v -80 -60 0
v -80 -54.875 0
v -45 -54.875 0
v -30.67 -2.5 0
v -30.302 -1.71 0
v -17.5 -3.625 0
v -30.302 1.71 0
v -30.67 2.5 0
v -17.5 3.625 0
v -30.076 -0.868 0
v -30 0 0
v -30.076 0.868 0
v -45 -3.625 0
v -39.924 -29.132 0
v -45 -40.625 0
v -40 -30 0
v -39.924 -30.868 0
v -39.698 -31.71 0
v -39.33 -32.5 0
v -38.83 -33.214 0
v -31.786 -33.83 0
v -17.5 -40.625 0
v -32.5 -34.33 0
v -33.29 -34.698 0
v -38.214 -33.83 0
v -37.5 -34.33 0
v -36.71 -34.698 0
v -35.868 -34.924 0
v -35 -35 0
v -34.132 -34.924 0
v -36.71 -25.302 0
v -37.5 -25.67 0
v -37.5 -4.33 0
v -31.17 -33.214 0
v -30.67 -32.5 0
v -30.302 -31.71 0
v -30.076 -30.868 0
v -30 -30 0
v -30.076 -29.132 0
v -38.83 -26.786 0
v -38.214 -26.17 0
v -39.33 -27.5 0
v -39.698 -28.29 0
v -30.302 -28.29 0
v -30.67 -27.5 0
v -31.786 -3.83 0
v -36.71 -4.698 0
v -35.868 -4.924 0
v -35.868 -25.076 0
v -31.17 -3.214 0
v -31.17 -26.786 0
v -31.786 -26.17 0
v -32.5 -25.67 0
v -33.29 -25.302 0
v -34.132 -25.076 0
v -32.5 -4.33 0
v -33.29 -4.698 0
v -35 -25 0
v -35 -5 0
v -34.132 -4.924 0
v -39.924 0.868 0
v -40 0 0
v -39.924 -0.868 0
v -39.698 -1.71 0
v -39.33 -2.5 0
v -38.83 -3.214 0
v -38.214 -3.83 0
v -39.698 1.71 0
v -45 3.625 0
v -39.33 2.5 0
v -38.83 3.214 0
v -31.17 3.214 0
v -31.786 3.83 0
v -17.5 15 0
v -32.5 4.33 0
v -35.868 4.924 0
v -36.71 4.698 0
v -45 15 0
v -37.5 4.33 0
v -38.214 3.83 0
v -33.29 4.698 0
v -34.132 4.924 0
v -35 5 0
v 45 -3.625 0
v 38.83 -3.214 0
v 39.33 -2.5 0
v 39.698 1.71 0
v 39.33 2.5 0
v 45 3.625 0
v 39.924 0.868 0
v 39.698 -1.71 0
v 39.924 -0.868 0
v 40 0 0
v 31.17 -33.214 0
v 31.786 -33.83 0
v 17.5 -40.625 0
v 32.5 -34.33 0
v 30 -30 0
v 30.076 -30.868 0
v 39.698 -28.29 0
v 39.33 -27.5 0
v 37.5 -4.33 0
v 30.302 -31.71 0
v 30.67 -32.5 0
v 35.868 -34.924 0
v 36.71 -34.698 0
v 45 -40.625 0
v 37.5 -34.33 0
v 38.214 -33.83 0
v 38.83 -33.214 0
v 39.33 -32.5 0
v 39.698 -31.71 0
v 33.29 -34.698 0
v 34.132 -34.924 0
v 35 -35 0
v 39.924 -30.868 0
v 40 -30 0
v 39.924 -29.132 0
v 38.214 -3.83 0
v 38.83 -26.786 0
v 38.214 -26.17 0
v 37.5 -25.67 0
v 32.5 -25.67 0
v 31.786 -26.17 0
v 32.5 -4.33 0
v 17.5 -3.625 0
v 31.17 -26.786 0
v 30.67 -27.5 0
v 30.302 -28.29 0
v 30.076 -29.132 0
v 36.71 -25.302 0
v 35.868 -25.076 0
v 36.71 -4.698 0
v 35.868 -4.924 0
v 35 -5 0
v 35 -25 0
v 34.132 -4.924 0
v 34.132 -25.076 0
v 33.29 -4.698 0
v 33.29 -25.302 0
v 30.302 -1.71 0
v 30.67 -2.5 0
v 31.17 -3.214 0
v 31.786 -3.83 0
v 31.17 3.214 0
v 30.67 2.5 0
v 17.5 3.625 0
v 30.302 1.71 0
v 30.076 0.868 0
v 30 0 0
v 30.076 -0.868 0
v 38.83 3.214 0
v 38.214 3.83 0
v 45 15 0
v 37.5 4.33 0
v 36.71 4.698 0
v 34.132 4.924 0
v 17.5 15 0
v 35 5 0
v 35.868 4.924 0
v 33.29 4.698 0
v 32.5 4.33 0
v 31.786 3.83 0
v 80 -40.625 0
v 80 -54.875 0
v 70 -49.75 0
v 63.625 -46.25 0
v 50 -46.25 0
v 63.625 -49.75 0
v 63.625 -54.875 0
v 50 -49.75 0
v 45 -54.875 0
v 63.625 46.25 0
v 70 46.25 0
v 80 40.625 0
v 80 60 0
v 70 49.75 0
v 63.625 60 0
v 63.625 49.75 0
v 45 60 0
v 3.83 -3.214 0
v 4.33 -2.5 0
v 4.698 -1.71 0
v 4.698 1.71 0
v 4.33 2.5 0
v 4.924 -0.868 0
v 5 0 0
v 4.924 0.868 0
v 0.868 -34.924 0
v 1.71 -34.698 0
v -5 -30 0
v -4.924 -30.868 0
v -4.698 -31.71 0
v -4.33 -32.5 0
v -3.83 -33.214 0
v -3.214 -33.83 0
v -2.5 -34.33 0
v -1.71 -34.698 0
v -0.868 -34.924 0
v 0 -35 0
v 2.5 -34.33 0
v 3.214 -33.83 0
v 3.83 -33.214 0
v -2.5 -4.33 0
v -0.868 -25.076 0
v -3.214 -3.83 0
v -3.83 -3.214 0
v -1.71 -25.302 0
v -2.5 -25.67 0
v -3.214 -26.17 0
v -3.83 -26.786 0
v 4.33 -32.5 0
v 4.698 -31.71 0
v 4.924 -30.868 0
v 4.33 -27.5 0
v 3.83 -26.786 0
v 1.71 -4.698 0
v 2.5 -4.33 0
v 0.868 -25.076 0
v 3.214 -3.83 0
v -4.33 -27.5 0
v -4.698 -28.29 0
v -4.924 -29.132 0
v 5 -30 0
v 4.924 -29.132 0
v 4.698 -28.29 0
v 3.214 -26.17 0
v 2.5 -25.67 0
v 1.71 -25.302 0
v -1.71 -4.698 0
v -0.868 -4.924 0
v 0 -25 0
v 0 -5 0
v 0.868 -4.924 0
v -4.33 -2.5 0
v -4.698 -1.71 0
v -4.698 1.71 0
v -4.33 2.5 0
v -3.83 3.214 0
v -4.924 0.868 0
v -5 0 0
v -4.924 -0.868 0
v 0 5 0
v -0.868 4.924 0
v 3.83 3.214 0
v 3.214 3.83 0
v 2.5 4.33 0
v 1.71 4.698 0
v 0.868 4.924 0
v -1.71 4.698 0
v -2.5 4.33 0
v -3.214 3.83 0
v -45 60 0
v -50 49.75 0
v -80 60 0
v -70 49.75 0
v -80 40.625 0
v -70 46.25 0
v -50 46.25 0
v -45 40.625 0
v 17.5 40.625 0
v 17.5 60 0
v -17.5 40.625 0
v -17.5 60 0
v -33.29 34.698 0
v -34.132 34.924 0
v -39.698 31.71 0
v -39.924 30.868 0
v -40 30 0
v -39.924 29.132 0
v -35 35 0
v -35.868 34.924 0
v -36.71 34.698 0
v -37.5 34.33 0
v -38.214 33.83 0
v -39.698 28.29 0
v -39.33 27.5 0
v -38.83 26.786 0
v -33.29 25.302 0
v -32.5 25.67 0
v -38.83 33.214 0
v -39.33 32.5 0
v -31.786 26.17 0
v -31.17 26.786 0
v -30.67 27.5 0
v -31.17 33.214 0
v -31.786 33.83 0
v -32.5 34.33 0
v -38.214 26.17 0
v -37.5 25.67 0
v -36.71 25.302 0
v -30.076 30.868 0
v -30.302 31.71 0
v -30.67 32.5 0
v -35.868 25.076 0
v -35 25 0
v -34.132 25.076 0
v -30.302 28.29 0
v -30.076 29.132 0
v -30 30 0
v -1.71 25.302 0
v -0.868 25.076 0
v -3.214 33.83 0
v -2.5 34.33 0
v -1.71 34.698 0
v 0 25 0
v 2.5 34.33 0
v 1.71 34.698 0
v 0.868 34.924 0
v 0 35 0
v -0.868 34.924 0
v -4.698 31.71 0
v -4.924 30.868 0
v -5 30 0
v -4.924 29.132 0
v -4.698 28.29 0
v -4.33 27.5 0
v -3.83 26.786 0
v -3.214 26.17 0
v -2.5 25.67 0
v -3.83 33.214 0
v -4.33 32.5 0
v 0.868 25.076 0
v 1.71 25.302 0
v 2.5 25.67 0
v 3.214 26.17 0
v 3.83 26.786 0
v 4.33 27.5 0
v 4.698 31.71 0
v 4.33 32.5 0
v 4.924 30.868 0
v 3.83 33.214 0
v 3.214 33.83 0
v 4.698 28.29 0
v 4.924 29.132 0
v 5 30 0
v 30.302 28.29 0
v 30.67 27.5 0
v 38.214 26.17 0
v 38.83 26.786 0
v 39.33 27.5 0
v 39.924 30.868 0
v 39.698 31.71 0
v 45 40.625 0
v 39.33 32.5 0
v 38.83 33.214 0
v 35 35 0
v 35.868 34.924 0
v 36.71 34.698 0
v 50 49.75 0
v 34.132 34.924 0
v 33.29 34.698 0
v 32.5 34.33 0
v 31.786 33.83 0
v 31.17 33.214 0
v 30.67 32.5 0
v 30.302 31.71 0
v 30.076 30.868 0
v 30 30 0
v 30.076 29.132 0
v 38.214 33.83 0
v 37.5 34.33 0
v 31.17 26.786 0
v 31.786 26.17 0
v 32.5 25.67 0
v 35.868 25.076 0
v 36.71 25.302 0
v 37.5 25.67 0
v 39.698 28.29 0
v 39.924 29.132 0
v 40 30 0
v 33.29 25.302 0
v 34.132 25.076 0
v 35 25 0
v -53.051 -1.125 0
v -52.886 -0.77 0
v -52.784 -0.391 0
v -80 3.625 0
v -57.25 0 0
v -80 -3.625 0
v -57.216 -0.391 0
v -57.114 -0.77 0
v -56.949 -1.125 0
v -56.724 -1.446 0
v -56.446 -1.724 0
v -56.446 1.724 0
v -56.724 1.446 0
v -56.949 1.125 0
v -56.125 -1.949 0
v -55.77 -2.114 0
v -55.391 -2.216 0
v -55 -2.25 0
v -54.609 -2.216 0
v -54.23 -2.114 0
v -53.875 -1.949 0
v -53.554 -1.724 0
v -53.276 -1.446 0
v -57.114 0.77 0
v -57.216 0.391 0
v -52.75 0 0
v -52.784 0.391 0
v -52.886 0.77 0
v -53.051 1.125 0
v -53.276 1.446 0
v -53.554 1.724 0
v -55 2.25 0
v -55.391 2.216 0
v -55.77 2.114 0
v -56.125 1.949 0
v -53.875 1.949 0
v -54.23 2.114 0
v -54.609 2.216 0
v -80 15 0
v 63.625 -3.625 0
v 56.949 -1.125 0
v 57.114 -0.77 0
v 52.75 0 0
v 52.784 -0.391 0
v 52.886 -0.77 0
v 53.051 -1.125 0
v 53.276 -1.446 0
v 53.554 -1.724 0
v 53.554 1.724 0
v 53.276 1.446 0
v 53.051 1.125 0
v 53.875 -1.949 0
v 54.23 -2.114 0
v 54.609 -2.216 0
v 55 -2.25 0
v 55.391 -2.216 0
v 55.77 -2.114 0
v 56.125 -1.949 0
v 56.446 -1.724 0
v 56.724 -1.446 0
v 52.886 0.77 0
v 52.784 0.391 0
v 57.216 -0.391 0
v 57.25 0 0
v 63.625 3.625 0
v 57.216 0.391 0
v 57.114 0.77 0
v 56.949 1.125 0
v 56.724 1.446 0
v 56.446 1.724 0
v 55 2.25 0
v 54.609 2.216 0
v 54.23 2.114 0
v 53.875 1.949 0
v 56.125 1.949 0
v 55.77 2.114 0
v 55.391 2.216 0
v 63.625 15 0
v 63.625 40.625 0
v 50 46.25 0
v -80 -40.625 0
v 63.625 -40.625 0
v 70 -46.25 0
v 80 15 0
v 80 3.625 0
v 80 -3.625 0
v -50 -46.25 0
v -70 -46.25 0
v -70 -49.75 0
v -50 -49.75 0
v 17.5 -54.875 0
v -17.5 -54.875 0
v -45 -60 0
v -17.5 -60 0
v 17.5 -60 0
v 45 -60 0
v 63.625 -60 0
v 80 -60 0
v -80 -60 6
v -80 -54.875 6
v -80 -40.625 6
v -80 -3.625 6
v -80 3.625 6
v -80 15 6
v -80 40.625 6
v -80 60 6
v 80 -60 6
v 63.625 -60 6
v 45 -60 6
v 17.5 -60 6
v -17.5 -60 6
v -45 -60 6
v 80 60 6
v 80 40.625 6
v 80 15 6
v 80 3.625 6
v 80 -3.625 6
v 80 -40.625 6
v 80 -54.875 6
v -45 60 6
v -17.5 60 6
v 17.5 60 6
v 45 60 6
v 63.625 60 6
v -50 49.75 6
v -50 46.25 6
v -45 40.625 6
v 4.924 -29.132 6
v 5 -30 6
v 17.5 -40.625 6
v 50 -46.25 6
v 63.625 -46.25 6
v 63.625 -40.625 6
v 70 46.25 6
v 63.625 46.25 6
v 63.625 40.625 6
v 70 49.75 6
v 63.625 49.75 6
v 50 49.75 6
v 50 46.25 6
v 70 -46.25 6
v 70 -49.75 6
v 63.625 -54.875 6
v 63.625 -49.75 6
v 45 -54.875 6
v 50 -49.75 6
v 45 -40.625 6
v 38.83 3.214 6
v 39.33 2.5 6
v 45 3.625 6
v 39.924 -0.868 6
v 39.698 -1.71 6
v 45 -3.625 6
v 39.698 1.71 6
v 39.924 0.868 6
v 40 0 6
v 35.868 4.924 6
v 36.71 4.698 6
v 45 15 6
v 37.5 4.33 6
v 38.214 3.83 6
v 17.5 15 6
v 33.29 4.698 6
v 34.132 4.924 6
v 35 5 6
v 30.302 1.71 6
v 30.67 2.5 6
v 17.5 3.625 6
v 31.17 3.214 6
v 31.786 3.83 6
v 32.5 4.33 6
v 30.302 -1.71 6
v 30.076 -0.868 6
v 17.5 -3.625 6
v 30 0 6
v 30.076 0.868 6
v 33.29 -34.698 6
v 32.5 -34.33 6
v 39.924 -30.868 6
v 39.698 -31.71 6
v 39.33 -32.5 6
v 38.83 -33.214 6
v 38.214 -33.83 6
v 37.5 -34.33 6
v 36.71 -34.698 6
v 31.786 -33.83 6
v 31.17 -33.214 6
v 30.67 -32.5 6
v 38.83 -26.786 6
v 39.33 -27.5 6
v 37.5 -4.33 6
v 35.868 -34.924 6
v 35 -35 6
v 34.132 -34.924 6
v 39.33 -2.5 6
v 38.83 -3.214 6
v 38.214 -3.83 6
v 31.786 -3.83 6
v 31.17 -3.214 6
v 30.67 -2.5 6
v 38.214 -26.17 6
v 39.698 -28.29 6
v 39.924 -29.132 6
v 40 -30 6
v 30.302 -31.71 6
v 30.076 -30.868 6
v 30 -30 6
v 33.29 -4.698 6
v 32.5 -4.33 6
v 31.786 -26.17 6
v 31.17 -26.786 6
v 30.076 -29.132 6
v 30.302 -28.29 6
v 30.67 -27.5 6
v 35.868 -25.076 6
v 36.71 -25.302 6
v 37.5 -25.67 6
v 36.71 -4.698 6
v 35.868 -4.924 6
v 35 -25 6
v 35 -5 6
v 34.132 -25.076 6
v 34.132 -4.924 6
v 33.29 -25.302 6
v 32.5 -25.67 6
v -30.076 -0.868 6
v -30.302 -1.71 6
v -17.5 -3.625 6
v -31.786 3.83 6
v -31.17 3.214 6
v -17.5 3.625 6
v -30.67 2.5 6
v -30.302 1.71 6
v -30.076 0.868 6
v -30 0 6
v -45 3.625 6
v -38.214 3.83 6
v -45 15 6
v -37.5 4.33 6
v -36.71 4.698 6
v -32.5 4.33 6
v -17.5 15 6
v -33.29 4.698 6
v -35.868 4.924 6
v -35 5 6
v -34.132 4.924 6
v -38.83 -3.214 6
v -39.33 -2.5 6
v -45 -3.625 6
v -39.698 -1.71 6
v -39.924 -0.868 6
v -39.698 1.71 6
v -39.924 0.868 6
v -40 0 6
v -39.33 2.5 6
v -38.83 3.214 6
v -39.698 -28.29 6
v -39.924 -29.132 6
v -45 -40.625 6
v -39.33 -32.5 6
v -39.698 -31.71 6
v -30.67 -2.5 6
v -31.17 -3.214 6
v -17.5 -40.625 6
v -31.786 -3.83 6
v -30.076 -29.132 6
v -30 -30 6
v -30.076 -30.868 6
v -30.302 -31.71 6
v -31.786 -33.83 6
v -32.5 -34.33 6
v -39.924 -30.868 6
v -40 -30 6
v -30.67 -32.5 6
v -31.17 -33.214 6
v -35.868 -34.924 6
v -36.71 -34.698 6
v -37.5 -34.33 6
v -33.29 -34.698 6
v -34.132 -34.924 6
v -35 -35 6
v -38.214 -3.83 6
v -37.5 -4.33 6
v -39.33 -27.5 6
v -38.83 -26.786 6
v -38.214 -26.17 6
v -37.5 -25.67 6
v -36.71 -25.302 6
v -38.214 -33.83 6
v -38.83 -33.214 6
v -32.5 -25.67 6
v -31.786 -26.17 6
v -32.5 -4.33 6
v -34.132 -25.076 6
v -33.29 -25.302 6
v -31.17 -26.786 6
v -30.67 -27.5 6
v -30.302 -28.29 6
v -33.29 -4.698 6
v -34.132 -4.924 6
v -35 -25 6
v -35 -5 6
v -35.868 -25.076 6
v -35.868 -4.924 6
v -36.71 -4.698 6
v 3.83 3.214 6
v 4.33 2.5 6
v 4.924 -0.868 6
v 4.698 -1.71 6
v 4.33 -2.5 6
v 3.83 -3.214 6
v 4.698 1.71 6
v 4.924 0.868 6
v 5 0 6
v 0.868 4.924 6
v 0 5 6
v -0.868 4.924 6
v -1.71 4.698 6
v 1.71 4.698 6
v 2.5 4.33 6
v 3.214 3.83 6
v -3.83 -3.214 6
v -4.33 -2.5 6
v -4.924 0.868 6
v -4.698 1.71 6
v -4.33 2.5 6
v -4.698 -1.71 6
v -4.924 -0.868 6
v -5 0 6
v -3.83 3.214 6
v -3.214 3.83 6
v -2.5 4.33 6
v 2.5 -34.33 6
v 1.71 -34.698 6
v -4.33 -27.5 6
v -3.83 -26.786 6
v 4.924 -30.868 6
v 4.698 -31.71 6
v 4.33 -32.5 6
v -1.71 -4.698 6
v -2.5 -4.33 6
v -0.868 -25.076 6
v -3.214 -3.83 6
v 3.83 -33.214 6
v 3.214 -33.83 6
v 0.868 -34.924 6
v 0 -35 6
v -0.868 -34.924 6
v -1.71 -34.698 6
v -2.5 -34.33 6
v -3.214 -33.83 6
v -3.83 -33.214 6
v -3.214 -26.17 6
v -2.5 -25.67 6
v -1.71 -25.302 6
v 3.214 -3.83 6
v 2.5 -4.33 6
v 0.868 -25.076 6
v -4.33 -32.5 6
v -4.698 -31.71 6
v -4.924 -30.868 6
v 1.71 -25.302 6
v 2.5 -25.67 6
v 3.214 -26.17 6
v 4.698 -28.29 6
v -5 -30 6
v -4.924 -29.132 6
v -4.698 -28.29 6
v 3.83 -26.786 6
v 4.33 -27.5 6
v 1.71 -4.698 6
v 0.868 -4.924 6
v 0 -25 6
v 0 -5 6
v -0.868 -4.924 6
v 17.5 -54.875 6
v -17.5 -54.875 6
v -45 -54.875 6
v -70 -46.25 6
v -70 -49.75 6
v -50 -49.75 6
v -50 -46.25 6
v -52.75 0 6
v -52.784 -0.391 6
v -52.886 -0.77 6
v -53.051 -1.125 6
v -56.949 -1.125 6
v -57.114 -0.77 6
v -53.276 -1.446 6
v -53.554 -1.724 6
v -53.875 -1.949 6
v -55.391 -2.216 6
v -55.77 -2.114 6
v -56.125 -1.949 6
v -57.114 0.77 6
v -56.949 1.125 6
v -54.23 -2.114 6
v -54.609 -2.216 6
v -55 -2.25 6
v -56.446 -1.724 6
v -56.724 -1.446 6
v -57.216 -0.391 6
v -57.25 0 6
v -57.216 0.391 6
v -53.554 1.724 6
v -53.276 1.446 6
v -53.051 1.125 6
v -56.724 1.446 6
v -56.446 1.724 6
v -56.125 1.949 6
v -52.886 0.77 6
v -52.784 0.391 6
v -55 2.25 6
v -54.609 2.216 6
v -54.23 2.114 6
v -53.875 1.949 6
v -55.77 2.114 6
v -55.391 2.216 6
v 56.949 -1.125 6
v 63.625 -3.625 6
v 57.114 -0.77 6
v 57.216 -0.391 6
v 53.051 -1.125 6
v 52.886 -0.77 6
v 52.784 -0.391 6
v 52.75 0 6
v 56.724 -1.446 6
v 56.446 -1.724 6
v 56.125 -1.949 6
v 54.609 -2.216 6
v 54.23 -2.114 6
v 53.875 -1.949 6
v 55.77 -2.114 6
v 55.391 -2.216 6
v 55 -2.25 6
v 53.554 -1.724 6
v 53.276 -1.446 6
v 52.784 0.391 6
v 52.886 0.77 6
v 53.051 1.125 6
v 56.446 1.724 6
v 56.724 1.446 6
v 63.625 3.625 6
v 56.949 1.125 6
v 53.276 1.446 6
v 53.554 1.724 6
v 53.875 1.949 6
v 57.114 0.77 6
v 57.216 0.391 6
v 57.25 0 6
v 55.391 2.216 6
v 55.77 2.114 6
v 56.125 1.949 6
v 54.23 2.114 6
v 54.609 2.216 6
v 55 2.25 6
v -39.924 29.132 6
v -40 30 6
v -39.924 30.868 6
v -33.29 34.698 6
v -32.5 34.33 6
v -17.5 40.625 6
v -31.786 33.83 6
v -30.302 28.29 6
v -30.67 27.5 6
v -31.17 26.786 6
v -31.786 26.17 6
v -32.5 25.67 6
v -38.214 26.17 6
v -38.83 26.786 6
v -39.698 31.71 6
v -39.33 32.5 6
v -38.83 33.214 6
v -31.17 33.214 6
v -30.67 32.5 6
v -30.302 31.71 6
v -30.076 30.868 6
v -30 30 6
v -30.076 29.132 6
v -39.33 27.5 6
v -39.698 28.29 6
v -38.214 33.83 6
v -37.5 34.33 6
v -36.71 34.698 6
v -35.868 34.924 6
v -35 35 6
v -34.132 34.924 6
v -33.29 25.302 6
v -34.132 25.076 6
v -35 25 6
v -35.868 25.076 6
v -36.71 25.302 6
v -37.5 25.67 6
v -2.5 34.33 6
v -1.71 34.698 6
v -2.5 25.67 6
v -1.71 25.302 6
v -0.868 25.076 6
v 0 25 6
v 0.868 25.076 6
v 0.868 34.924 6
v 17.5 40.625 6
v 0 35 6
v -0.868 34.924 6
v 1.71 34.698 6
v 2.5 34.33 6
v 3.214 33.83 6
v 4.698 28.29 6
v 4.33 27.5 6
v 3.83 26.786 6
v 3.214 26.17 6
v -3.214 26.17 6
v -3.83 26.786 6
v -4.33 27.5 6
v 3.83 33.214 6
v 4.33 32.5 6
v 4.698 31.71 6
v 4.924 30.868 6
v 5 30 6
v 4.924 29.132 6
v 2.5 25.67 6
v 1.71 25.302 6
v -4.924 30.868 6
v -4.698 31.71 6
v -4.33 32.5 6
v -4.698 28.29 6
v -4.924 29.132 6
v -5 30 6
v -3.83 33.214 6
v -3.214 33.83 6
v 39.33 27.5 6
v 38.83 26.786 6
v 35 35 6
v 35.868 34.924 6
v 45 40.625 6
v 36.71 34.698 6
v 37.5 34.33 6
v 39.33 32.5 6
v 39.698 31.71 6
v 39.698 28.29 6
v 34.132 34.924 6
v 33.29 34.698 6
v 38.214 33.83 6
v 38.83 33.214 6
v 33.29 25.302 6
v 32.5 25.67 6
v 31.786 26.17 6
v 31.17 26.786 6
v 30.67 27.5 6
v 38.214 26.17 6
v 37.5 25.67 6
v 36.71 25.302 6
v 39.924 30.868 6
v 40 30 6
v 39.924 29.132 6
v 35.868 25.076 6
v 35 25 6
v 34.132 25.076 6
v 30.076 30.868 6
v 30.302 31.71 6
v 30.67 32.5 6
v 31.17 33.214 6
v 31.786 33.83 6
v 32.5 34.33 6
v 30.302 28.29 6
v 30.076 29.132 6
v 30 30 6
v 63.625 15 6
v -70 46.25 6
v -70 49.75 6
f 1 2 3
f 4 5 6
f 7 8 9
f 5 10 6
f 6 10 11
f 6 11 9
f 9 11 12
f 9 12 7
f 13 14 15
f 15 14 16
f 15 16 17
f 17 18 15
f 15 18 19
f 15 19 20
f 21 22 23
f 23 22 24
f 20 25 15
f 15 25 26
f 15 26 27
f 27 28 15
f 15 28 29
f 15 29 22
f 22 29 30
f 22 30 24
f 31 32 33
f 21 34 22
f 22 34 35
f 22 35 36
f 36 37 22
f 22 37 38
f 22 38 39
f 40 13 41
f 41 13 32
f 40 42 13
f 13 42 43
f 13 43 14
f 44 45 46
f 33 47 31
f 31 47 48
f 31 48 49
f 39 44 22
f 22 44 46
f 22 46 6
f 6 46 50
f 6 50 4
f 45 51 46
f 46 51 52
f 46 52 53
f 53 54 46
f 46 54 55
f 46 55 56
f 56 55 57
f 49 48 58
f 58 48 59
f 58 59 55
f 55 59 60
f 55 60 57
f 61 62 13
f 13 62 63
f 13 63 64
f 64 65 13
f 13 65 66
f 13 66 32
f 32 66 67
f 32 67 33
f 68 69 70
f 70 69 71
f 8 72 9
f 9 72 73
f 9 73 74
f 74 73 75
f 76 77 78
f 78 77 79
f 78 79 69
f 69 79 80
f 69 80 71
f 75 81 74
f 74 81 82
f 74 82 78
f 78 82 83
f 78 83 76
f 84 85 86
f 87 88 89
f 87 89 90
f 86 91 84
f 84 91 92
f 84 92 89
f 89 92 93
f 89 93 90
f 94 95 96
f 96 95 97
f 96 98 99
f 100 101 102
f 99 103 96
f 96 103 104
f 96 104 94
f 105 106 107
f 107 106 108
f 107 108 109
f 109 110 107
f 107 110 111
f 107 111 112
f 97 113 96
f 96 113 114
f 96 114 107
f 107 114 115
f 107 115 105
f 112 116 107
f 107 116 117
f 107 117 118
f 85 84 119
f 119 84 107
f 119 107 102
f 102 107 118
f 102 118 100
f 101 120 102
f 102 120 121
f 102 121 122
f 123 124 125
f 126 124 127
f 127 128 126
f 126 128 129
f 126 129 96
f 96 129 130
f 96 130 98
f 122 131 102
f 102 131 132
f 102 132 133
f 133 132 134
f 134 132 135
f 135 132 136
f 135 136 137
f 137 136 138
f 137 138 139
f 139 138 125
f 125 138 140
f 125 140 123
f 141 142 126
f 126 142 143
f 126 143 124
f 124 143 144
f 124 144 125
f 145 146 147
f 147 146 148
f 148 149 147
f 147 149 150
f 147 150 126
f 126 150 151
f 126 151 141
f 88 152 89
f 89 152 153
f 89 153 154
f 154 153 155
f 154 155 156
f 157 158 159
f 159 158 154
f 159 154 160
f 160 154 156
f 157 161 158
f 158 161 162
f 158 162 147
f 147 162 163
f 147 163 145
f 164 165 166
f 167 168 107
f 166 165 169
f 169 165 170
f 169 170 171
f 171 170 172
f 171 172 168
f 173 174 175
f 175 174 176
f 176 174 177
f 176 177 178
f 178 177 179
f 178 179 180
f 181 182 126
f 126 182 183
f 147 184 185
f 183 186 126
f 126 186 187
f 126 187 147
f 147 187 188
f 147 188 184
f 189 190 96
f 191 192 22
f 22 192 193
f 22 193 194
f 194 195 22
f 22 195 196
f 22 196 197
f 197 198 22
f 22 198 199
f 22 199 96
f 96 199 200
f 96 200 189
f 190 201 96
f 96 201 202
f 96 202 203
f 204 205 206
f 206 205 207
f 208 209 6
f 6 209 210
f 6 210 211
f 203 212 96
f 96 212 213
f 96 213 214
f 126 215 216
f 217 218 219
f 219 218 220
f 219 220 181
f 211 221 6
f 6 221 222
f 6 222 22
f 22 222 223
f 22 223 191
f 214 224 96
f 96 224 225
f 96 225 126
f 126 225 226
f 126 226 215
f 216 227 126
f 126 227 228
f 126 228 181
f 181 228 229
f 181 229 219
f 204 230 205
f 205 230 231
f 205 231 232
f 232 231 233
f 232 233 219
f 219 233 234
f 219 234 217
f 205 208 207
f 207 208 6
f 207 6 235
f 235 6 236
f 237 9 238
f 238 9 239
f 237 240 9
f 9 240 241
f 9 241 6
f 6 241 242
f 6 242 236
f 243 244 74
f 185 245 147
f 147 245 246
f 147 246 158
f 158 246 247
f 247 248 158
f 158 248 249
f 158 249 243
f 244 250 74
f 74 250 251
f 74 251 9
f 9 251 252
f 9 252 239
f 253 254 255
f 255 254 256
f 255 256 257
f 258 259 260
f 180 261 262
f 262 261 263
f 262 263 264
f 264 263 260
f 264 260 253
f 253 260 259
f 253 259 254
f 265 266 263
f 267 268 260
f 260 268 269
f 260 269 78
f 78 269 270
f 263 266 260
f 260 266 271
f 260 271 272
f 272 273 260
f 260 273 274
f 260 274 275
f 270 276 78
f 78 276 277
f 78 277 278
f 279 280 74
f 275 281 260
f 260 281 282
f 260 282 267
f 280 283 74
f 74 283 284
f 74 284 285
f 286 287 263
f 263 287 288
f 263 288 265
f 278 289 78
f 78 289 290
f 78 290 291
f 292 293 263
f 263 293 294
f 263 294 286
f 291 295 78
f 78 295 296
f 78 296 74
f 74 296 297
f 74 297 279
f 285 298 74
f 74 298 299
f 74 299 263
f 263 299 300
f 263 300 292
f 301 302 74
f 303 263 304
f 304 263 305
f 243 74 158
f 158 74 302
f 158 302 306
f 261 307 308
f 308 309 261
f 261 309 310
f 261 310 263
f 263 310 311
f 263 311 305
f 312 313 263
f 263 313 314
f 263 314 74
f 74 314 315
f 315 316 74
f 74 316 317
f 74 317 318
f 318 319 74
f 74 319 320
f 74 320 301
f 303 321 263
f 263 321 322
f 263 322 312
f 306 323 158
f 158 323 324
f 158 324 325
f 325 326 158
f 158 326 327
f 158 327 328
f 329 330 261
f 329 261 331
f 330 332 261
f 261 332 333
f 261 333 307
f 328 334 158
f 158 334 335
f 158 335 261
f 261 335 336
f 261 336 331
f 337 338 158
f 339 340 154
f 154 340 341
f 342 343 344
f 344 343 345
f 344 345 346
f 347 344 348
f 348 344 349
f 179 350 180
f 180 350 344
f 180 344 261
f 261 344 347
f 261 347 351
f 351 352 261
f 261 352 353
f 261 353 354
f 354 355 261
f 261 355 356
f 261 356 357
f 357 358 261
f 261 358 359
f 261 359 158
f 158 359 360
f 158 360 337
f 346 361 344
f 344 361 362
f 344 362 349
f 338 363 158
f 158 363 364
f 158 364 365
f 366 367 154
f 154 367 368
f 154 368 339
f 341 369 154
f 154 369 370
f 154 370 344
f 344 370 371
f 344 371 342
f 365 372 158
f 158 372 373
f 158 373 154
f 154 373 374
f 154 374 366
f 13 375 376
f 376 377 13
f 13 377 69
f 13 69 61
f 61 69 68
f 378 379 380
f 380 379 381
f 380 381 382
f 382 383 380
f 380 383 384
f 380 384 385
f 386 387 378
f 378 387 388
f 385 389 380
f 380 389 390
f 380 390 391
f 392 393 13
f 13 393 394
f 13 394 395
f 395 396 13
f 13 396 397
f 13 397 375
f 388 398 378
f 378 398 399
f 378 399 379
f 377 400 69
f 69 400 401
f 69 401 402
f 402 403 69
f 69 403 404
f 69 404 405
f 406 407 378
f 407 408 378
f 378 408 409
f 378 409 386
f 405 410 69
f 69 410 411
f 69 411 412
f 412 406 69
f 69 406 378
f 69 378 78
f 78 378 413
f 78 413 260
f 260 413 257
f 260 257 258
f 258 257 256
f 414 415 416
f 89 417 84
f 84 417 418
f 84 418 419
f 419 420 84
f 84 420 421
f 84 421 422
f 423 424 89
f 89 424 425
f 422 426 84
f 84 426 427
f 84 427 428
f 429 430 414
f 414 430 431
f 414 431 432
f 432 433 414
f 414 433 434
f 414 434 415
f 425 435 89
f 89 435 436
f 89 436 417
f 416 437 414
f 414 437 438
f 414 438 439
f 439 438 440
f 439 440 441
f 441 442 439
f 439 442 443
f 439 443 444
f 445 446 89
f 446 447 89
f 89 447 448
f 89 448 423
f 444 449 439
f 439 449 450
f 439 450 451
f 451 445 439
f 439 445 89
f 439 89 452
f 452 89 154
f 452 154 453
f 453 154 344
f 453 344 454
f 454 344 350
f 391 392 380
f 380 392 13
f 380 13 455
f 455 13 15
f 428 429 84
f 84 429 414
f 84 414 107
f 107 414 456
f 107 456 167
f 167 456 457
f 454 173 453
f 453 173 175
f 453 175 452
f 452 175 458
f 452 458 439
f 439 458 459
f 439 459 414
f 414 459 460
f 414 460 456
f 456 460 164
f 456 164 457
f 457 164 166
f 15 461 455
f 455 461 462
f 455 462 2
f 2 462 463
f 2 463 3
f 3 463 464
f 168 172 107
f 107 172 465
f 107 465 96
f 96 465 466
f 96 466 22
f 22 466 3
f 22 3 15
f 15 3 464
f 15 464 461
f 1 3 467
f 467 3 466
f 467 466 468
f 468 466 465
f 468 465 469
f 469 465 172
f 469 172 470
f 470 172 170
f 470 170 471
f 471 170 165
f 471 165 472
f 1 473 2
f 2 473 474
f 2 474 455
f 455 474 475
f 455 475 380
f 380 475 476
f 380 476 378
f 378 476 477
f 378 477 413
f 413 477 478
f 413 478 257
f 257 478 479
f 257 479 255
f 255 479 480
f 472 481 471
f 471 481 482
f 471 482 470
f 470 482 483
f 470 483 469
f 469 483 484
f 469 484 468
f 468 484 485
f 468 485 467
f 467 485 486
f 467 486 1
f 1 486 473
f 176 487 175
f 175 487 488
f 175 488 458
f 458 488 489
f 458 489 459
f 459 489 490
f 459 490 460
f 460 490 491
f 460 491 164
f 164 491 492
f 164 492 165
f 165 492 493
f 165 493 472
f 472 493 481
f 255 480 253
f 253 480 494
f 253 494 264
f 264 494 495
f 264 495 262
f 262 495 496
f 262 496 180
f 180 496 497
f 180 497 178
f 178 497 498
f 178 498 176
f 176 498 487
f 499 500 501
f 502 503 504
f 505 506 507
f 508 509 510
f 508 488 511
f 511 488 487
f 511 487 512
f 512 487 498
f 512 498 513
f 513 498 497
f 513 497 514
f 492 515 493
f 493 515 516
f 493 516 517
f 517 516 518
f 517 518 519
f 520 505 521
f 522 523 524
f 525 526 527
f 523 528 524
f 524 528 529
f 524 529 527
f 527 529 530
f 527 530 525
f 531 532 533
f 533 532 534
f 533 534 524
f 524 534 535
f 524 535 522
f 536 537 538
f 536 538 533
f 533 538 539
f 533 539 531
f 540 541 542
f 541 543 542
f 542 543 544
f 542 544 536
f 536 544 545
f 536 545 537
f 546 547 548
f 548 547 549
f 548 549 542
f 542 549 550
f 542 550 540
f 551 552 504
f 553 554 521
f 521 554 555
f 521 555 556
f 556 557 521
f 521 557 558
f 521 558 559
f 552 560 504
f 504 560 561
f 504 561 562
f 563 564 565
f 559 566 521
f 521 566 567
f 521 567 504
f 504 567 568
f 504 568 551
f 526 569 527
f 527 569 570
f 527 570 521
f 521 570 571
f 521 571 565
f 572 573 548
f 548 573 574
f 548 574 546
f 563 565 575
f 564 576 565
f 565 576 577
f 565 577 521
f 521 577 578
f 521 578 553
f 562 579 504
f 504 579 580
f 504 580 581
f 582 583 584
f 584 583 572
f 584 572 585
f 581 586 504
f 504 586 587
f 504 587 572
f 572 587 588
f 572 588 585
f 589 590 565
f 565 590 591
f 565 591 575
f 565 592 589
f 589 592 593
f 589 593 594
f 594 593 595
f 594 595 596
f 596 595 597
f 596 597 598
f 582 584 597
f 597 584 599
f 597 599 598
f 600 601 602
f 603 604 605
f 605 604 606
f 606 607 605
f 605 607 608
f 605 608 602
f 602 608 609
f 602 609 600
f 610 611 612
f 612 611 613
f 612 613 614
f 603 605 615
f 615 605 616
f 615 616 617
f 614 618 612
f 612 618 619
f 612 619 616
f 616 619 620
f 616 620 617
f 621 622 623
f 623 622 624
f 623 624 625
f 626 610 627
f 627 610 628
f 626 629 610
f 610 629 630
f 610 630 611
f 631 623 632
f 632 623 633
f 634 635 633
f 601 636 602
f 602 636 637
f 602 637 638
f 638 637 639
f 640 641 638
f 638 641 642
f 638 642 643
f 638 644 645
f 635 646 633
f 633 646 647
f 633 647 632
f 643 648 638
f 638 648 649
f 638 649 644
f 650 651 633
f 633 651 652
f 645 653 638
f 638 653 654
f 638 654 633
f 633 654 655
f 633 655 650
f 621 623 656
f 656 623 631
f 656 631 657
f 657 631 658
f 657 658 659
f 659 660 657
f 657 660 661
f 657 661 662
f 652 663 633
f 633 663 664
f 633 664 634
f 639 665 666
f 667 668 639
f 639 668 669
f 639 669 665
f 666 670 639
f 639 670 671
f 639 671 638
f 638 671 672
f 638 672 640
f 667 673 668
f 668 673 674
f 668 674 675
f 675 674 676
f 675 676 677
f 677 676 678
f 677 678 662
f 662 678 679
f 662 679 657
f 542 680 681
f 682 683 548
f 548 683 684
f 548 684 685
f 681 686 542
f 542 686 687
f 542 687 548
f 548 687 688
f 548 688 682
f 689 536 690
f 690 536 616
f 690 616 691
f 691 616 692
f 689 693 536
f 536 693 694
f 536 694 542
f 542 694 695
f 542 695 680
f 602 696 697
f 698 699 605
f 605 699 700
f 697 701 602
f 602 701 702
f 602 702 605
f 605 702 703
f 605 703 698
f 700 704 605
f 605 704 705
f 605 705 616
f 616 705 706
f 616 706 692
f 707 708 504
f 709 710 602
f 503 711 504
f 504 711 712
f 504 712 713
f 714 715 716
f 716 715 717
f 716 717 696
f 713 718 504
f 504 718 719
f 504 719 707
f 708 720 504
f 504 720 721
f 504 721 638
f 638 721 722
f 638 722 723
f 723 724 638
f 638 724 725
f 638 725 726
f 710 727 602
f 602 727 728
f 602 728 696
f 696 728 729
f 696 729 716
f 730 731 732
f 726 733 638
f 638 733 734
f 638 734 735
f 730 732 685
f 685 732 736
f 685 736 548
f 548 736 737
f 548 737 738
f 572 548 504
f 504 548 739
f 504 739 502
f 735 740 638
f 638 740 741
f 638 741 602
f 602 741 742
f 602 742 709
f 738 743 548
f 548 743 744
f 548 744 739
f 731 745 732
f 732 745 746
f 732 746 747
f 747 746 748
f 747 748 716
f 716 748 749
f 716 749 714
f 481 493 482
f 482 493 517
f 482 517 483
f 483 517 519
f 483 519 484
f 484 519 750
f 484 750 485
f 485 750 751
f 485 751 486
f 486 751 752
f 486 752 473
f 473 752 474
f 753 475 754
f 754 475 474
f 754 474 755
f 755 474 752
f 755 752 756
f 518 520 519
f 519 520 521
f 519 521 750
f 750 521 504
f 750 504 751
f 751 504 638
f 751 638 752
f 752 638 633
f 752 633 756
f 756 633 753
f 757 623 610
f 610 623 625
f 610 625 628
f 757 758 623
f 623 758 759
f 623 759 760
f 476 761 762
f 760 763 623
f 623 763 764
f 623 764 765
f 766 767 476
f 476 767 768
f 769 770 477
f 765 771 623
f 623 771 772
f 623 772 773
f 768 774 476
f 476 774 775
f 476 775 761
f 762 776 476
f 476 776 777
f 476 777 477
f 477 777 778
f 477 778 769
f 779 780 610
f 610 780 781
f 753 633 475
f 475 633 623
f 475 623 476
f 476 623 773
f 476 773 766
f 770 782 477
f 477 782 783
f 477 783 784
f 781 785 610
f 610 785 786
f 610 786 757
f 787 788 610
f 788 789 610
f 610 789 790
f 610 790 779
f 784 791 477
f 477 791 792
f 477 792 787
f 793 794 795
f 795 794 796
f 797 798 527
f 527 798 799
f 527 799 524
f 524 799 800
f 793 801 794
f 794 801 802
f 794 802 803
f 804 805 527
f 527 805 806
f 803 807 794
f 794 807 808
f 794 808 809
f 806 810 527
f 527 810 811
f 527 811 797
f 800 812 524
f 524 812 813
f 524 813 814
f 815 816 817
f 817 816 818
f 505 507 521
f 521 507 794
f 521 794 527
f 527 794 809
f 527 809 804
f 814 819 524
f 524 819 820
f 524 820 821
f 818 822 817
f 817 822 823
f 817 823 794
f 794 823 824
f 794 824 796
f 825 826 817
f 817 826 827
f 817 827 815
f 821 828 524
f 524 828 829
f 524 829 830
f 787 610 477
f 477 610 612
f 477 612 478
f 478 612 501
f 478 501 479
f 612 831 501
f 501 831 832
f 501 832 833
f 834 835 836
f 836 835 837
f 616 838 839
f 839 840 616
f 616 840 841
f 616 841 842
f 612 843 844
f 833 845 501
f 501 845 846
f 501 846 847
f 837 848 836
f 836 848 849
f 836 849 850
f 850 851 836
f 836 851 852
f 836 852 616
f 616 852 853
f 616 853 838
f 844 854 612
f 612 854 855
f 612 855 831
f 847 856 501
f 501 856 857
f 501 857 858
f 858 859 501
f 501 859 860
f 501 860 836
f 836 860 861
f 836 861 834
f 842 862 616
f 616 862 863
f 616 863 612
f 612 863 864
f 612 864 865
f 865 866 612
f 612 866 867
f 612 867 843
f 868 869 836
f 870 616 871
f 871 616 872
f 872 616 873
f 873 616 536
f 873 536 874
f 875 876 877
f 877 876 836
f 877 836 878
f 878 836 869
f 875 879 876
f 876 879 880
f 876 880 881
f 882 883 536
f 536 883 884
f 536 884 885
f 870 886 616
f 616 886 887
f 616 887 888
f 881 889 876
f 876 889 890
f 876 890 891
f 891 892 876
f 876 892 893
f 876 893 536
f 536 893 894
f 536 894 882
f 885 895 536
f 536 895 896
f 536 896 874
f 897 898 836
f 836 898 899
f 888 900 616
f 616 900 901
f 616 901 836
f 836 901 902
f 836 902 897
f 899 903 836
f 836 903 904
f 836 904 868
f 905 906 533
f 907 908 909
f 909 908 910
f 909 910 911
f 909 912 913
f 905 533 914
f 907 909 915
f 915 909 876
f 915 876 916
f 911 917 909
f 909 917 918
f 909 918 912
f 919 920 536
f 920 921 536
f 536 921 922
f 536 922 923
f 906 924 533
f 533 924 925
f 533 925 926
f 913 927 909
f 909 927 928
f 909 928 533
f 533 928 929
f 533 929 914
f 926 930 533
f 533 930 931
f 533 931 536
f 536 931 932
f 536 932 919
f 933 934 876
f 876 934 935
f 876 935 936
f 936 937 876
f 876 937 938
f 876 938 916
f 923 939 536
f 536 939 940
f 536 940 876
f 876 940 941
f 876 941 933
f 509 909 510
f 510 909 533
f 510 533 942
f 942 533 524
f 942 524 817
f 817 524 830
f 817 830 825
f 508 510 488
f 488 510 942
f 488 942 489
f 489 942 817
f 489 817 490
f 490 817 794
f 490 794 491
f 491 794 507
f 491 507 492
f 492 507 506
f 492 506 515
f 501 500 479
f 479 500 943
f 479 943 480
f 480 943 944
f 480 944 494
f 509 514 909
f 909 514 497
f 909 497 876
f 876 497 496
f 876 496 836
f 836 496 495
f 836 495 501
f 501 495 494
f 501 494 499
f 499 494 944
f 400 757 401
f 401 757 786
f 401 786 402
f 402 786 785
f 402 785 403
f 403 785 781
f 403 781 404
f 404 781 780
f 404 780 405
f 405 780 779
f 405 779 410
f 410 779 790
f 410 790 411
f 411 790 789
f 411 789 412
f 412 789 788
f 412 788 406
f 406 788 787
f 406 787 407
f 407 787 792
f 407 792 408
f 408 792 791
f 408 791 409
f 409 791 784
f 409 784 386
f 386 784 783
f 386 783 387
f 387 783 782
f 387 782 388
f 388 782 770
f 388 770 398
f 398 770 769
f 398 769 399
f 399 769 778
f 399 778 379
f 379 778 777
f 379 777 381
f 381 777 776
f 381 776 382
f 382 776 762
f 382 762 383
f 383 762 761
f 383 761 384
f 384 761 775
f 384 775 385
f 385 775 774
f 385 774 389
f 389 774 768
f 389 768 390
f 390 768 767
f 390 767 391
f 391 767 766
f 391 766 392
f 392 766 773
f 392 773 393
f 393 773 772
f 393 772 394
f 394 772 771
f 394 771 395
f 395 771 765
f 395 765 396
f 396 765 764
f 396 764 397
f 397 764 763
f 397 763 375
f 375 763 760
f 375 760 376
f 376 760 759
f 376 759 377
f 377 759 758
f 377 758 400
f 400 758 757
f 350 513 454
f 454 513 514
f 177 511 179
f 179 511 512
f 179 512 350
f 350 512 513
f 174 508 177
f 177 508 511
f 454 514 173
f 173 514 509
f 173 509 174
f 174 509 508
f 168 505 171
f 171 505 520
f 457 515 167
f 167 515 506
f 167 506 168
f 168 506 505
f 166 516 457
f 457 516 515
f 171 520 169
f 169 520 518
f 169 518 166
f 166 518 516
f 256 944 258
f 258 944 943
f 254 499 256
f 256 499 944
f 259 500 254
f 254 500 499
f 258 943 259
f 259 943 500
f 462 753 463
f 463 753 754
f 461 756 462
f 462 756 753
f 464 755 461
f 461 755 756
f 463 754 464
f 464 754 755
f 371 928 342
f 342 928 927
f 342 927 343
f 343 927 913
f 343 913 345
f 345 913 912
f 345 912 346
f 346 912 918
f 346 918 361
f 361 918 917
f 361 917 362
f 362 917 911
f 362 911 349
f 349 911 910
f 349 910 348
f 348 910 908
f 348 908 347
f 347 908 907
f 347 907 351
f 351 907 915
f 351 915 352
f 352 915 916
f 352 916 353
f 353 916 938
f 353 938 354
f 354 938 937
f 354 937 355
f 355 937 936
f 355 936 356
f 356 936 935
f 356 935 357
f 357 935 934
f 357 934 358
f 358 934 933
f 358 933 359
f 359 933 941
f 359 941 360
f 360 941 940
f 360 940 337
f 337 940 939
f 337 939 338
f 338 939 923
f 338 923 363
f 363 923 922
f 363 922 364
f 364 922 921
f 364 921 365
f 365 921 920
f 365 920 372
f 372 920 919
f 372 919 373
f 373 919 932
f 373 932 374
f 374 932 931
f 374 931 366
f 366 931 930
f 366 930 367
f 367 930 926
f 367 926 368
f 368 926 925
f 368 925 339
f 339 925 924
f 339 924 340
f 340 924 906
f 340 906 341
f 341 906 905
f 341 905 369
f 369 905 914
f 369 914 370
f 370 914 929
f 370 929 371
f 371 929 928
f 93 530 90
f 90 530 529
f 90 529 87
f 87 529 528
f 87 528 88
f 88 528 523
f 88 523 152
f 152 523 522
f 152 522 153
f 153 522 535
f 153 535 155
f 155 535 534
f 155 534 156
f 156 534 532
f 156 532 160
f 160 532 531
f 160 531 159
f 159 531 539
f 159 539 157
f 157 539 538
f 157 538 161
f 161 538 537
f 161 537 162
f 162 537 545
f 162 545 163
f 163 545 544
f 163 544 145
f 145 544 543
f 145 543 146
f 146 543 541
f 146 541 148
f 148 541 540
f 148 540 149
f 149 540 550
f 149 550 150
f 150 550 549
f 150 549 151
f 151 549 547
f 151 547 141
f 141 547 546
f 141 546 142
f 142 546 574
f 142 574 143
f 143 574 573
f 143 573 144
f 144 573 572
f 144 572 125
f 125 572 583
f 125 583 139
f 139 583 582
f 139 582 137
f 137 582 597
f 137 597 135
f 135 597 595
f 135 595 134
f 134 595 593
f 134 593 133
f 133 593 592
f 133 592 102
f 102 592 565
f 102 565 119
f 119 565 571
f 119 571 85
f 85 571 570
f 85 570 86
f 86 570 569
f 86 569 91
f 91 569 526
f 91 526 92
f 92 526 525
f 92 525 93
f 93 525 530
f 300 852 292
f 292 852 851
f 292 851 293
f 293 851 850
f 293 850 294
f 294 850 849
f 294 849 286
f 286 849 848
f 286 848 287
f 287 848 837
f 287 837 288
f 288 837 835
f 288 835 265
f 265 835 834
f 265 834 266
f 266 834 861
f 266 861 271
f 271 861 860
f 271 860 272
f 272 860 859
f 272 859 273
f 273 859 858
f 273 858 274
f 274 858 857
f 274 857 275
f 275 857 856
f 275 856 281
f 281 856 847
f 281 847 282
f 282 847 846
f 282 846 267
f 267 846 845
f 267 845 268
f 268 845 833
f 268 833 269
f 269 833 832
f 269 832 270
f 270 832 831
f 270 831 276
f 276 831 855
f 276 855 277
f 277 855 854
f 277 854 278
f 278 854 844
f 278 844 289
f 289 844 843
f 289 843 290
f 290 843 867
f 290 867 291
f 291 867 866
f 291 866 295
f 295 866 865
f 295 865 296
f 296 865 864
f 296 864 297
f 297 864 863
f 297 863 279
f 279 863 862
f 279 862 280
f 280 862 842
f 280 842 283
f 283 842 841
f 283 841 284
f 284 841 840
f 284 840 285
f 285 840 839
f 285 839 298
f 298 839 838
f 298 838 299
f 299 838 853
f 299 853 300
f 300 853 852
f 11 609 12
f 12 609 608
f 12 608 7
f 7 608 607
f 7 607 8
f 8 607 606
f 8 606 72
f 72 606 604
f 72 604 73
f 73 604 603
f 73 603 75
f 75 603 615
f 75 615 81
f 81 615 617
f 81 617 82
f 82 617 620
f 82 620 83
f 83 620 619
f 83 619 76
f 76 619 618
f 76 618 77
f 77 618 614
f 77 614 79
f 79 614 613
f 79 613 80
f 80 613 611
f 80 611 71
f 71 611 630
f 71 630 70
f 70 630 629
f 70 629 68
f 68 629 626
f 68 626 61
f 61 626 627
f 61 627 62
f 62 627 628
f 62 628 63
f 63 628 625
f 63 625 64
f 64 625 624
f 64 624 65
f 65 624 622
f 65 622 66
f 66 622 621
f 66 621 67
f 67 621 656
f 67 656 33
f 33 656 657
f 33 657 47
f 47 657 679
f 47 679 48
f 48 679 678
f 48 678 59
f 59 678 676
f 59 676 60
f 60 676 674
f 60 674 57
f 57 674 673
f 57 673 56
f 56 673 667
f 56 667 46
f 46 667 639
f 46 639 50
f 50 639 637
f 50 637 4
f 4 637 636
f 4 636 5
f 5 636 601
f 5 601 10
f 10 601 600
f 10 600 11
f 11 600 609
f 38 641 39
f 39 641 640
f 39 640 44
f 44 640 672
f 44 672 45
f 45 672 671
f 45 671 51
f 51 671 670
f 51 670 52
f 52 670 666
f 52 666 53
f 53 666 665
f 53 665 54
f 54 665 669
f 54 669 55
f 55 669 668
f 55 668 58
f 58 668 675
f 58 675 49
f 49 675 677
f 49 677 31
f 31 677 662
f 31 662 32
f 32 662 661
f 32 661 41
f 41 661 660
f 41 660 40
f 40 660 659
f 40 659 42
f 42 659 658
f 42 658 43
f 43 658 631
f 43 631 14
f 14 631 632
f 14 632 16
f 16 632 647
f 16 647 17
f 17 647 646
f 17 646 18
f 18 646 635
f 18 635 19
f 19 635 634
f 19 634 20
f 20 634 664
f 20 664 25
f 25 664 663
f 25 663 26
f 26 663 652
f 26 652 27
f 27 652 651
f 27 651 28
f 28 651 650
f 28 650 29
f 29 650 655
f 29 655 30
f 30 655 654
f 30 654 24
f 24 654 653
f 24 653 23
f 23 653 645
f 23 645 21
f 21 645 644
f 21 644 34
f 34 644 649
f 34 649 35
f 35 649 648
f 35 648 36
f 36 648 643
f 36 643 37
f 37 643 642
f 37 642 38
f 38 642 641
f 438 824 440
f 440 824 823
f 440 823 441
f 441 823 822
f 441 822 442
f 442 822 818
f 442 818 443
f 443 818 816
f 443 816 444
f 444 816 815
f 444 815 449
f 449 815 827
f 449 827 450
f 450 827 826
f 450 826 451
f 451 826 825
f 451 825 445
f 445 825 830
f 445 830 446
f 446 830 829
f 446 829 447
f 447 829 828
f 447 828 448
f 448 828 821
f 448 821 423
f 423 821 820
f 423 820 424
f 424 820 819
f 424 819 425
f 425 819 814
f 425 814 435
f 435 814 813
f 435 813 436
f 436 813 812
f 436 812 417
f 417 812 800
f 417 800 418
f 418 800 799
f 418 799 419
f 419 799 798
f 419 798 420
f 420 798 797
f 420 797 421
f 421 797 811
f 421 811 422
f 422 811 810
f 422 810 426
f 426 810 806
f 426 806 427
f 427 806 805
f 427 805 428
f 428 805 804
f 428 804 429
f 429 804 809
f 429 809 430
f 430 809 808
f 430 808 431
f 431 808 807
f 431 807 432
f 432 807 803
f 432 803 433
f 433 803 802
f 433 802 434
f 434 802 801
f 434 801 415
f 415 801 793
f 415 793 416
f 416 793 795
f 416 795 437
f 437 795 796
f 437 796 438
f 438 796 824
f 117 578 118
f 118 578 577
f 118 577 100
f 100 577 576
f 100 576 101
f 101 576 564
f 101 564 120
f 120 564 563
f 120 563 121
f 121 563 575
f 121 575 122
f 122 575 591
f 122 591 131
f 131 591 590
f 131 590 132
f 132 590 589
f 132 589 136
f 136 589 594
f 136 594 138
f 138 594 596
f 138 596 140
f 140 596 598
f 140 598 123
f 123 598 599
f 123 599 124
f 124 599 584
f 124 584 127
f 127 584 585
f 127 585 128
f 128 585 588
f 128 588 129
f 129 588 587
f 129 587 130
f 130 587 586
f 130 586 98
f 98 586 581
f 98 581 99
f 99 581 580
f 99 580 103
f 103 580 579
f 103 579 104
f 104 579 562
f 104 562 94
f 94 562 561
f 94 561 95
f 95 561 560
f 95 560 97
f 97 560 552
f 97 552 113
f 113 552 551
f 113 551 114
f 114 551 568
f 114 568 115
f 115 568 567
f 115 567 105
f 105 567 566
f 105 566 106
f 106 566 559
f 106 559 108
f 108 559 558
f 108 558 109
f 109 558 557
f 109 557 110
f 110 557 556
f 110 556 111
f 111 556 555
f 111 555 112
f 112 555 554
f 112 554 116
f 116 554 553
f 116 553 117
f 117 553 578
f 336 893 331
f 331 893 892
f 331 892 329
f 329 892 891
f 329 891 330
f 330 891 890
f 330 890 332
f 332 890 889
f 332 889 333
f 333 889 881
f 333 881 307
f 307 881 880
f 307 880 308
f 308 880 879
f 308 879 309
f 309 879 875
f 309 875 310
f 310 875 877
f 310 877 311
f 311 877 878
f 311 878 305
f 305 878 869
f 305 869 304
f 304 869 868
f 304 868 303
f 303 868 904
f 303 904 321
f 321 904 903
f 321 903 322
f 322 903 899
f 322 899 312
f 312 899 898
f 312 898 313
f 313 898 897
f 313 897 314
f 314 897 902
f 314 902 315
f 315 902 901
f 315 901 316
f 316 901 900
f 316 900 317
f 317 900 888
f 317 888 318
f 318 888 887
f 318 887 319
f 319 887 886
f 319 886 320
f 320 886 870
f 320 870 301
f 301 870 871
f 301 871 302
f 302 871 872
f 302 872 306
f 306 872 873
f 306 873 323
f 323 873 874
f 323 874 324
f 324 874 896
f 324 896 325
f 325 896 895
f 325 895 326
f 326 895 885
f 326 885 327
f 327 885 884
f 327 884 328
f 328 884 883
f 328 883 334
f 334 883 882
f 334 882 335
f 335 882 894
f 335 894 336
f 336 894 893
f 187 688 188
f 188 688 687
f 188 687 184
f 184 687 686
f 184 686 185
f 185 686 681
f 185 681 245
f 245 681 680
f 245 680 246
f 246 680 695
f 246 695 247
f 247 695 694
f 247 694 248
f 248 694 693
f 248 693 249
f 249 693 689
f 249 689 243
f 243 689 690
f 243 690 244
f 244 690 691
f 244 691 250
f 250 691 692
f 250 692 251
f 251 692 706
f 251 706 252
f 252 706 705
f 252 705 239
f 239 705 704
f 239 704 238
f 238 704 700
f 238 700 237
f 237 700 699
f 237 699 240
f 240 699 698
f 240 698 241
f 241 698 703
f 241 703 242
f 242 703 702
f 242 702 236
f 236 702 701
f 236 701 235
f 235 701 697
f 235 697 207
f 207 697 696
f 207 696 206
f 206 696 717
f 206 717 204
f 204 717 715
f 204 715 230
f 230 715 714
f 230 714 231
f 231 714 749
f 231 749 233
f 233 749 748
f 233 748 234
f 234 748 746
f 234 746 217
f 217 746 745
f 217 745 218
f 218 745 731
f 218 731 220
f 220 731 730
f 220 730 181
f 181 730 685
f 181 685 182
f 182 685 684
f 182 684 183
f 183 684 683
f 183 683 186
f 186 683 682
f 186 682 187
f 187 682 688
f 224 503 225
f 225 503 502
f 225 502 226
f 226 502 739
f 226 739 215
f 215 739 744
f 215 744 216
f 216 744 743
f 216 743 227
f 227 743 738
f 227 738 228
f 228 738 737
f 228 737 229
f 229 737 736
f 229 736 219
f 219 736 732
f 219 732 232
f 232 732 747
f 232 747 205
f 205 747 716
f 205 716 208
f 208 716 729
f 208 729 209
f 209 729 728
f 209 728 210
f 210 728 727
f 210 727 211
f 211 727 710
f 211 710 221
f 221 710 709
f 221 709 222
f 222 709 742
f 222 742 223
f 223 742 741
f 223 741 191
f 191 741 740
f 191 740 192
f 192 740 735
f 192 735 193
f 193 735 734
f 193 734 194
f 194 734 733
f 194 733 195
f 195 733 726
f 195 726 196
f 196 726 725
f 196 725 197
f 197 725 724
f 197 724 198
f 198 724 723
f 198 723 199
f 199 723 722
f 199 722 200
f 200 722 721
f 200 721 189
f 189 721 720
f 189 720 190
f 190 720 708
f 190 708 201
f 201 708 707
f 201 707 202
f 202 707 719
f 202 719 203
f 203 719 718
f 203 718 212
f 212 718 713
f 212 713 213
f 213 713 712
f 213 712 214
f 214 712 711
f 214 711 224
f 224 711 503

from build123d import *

# Parameters (mm, degrees)
SKETCH_1_W                 = 160
SKETCH_1_H                 = 120
EXTRUDE_160X120_DEPTH      = 6
CUT_EXTRUDE_392_DEPTH      = 101.179838291
CUT_EXTRUDE_392_DEPTH_BACK = 101.179838291
SKETCH_2_R                 = 2.25
SKETCH_2_R_2               = 5
SKETCH_2_W                 = 20
SKETCH_2_H                 = 3.5


with BuildPart() as part:
    # 草图1 → 主板通用托盘160x120 (new body)
    with BuildSketch(Plane.XY):
        Rectangle(SKETCH_1_W, SKETCH_1_H)
    extrude(amount=EXTRUDE_160X120_DEPTH)

    # 草图2 → Cut-Extrude 392 (cut, two sides: drawn at the far end of the back side and taken through both)
    with BuildSketch(Plane.XY.offset(-CUT_EXTRUDE_392_DEPTH_BACK)):
        with Locations((-55, 0)):
            Circle(SKETCH_2_R)
        with Locations((55, 0)):
            Circle(SKETCH_2_R)
        with Locations((-35, -30)):
            Circle(SKETCH_2_R_2)
        with Locations((-35, 0)):
            Circle(SKETCH_2_R_2)
        with Locations((-35, 30)):
            Circle(SKETCH_2_R_2)
        with Locations((0, -30)):
            Circle(SKETCH_2_R_2)
        Circle(SKETCH_2_R_2)
        with Locations((0, 30)):
            Circle(SKETCH_2_R_2)
        with Locations((35, -30)):
            Circle(SKETCH_2_R_2)
        with Locations((35, 0)):
            Circle(SKETCH_2_R_2)
        with Locations((35, 30)):
            Circle(SKETCH_2_R_2)
        with Locations((-60, -48)):
            Rectangle(SKETCH_2_W, SKETCH_2_H)
        with Locations((-60, 48)):
            Rectangle(SKETCH_2_W, SKETCH_2_H)
        with Locations((60, -48)):
            Rectangle(SKETCH_2_W, SKETCH_2_H)
        with Locations((60, 48)):
            Rectangle(SKETCH_2_W, SKETCH_2_H)
    extrude(amount=CUT_EXTRUDE_392_DEPTH + CUT_EXTRUDE_392_DEPTH_BACK, mode=Mode.SUBTRACT)


solid = part.part
